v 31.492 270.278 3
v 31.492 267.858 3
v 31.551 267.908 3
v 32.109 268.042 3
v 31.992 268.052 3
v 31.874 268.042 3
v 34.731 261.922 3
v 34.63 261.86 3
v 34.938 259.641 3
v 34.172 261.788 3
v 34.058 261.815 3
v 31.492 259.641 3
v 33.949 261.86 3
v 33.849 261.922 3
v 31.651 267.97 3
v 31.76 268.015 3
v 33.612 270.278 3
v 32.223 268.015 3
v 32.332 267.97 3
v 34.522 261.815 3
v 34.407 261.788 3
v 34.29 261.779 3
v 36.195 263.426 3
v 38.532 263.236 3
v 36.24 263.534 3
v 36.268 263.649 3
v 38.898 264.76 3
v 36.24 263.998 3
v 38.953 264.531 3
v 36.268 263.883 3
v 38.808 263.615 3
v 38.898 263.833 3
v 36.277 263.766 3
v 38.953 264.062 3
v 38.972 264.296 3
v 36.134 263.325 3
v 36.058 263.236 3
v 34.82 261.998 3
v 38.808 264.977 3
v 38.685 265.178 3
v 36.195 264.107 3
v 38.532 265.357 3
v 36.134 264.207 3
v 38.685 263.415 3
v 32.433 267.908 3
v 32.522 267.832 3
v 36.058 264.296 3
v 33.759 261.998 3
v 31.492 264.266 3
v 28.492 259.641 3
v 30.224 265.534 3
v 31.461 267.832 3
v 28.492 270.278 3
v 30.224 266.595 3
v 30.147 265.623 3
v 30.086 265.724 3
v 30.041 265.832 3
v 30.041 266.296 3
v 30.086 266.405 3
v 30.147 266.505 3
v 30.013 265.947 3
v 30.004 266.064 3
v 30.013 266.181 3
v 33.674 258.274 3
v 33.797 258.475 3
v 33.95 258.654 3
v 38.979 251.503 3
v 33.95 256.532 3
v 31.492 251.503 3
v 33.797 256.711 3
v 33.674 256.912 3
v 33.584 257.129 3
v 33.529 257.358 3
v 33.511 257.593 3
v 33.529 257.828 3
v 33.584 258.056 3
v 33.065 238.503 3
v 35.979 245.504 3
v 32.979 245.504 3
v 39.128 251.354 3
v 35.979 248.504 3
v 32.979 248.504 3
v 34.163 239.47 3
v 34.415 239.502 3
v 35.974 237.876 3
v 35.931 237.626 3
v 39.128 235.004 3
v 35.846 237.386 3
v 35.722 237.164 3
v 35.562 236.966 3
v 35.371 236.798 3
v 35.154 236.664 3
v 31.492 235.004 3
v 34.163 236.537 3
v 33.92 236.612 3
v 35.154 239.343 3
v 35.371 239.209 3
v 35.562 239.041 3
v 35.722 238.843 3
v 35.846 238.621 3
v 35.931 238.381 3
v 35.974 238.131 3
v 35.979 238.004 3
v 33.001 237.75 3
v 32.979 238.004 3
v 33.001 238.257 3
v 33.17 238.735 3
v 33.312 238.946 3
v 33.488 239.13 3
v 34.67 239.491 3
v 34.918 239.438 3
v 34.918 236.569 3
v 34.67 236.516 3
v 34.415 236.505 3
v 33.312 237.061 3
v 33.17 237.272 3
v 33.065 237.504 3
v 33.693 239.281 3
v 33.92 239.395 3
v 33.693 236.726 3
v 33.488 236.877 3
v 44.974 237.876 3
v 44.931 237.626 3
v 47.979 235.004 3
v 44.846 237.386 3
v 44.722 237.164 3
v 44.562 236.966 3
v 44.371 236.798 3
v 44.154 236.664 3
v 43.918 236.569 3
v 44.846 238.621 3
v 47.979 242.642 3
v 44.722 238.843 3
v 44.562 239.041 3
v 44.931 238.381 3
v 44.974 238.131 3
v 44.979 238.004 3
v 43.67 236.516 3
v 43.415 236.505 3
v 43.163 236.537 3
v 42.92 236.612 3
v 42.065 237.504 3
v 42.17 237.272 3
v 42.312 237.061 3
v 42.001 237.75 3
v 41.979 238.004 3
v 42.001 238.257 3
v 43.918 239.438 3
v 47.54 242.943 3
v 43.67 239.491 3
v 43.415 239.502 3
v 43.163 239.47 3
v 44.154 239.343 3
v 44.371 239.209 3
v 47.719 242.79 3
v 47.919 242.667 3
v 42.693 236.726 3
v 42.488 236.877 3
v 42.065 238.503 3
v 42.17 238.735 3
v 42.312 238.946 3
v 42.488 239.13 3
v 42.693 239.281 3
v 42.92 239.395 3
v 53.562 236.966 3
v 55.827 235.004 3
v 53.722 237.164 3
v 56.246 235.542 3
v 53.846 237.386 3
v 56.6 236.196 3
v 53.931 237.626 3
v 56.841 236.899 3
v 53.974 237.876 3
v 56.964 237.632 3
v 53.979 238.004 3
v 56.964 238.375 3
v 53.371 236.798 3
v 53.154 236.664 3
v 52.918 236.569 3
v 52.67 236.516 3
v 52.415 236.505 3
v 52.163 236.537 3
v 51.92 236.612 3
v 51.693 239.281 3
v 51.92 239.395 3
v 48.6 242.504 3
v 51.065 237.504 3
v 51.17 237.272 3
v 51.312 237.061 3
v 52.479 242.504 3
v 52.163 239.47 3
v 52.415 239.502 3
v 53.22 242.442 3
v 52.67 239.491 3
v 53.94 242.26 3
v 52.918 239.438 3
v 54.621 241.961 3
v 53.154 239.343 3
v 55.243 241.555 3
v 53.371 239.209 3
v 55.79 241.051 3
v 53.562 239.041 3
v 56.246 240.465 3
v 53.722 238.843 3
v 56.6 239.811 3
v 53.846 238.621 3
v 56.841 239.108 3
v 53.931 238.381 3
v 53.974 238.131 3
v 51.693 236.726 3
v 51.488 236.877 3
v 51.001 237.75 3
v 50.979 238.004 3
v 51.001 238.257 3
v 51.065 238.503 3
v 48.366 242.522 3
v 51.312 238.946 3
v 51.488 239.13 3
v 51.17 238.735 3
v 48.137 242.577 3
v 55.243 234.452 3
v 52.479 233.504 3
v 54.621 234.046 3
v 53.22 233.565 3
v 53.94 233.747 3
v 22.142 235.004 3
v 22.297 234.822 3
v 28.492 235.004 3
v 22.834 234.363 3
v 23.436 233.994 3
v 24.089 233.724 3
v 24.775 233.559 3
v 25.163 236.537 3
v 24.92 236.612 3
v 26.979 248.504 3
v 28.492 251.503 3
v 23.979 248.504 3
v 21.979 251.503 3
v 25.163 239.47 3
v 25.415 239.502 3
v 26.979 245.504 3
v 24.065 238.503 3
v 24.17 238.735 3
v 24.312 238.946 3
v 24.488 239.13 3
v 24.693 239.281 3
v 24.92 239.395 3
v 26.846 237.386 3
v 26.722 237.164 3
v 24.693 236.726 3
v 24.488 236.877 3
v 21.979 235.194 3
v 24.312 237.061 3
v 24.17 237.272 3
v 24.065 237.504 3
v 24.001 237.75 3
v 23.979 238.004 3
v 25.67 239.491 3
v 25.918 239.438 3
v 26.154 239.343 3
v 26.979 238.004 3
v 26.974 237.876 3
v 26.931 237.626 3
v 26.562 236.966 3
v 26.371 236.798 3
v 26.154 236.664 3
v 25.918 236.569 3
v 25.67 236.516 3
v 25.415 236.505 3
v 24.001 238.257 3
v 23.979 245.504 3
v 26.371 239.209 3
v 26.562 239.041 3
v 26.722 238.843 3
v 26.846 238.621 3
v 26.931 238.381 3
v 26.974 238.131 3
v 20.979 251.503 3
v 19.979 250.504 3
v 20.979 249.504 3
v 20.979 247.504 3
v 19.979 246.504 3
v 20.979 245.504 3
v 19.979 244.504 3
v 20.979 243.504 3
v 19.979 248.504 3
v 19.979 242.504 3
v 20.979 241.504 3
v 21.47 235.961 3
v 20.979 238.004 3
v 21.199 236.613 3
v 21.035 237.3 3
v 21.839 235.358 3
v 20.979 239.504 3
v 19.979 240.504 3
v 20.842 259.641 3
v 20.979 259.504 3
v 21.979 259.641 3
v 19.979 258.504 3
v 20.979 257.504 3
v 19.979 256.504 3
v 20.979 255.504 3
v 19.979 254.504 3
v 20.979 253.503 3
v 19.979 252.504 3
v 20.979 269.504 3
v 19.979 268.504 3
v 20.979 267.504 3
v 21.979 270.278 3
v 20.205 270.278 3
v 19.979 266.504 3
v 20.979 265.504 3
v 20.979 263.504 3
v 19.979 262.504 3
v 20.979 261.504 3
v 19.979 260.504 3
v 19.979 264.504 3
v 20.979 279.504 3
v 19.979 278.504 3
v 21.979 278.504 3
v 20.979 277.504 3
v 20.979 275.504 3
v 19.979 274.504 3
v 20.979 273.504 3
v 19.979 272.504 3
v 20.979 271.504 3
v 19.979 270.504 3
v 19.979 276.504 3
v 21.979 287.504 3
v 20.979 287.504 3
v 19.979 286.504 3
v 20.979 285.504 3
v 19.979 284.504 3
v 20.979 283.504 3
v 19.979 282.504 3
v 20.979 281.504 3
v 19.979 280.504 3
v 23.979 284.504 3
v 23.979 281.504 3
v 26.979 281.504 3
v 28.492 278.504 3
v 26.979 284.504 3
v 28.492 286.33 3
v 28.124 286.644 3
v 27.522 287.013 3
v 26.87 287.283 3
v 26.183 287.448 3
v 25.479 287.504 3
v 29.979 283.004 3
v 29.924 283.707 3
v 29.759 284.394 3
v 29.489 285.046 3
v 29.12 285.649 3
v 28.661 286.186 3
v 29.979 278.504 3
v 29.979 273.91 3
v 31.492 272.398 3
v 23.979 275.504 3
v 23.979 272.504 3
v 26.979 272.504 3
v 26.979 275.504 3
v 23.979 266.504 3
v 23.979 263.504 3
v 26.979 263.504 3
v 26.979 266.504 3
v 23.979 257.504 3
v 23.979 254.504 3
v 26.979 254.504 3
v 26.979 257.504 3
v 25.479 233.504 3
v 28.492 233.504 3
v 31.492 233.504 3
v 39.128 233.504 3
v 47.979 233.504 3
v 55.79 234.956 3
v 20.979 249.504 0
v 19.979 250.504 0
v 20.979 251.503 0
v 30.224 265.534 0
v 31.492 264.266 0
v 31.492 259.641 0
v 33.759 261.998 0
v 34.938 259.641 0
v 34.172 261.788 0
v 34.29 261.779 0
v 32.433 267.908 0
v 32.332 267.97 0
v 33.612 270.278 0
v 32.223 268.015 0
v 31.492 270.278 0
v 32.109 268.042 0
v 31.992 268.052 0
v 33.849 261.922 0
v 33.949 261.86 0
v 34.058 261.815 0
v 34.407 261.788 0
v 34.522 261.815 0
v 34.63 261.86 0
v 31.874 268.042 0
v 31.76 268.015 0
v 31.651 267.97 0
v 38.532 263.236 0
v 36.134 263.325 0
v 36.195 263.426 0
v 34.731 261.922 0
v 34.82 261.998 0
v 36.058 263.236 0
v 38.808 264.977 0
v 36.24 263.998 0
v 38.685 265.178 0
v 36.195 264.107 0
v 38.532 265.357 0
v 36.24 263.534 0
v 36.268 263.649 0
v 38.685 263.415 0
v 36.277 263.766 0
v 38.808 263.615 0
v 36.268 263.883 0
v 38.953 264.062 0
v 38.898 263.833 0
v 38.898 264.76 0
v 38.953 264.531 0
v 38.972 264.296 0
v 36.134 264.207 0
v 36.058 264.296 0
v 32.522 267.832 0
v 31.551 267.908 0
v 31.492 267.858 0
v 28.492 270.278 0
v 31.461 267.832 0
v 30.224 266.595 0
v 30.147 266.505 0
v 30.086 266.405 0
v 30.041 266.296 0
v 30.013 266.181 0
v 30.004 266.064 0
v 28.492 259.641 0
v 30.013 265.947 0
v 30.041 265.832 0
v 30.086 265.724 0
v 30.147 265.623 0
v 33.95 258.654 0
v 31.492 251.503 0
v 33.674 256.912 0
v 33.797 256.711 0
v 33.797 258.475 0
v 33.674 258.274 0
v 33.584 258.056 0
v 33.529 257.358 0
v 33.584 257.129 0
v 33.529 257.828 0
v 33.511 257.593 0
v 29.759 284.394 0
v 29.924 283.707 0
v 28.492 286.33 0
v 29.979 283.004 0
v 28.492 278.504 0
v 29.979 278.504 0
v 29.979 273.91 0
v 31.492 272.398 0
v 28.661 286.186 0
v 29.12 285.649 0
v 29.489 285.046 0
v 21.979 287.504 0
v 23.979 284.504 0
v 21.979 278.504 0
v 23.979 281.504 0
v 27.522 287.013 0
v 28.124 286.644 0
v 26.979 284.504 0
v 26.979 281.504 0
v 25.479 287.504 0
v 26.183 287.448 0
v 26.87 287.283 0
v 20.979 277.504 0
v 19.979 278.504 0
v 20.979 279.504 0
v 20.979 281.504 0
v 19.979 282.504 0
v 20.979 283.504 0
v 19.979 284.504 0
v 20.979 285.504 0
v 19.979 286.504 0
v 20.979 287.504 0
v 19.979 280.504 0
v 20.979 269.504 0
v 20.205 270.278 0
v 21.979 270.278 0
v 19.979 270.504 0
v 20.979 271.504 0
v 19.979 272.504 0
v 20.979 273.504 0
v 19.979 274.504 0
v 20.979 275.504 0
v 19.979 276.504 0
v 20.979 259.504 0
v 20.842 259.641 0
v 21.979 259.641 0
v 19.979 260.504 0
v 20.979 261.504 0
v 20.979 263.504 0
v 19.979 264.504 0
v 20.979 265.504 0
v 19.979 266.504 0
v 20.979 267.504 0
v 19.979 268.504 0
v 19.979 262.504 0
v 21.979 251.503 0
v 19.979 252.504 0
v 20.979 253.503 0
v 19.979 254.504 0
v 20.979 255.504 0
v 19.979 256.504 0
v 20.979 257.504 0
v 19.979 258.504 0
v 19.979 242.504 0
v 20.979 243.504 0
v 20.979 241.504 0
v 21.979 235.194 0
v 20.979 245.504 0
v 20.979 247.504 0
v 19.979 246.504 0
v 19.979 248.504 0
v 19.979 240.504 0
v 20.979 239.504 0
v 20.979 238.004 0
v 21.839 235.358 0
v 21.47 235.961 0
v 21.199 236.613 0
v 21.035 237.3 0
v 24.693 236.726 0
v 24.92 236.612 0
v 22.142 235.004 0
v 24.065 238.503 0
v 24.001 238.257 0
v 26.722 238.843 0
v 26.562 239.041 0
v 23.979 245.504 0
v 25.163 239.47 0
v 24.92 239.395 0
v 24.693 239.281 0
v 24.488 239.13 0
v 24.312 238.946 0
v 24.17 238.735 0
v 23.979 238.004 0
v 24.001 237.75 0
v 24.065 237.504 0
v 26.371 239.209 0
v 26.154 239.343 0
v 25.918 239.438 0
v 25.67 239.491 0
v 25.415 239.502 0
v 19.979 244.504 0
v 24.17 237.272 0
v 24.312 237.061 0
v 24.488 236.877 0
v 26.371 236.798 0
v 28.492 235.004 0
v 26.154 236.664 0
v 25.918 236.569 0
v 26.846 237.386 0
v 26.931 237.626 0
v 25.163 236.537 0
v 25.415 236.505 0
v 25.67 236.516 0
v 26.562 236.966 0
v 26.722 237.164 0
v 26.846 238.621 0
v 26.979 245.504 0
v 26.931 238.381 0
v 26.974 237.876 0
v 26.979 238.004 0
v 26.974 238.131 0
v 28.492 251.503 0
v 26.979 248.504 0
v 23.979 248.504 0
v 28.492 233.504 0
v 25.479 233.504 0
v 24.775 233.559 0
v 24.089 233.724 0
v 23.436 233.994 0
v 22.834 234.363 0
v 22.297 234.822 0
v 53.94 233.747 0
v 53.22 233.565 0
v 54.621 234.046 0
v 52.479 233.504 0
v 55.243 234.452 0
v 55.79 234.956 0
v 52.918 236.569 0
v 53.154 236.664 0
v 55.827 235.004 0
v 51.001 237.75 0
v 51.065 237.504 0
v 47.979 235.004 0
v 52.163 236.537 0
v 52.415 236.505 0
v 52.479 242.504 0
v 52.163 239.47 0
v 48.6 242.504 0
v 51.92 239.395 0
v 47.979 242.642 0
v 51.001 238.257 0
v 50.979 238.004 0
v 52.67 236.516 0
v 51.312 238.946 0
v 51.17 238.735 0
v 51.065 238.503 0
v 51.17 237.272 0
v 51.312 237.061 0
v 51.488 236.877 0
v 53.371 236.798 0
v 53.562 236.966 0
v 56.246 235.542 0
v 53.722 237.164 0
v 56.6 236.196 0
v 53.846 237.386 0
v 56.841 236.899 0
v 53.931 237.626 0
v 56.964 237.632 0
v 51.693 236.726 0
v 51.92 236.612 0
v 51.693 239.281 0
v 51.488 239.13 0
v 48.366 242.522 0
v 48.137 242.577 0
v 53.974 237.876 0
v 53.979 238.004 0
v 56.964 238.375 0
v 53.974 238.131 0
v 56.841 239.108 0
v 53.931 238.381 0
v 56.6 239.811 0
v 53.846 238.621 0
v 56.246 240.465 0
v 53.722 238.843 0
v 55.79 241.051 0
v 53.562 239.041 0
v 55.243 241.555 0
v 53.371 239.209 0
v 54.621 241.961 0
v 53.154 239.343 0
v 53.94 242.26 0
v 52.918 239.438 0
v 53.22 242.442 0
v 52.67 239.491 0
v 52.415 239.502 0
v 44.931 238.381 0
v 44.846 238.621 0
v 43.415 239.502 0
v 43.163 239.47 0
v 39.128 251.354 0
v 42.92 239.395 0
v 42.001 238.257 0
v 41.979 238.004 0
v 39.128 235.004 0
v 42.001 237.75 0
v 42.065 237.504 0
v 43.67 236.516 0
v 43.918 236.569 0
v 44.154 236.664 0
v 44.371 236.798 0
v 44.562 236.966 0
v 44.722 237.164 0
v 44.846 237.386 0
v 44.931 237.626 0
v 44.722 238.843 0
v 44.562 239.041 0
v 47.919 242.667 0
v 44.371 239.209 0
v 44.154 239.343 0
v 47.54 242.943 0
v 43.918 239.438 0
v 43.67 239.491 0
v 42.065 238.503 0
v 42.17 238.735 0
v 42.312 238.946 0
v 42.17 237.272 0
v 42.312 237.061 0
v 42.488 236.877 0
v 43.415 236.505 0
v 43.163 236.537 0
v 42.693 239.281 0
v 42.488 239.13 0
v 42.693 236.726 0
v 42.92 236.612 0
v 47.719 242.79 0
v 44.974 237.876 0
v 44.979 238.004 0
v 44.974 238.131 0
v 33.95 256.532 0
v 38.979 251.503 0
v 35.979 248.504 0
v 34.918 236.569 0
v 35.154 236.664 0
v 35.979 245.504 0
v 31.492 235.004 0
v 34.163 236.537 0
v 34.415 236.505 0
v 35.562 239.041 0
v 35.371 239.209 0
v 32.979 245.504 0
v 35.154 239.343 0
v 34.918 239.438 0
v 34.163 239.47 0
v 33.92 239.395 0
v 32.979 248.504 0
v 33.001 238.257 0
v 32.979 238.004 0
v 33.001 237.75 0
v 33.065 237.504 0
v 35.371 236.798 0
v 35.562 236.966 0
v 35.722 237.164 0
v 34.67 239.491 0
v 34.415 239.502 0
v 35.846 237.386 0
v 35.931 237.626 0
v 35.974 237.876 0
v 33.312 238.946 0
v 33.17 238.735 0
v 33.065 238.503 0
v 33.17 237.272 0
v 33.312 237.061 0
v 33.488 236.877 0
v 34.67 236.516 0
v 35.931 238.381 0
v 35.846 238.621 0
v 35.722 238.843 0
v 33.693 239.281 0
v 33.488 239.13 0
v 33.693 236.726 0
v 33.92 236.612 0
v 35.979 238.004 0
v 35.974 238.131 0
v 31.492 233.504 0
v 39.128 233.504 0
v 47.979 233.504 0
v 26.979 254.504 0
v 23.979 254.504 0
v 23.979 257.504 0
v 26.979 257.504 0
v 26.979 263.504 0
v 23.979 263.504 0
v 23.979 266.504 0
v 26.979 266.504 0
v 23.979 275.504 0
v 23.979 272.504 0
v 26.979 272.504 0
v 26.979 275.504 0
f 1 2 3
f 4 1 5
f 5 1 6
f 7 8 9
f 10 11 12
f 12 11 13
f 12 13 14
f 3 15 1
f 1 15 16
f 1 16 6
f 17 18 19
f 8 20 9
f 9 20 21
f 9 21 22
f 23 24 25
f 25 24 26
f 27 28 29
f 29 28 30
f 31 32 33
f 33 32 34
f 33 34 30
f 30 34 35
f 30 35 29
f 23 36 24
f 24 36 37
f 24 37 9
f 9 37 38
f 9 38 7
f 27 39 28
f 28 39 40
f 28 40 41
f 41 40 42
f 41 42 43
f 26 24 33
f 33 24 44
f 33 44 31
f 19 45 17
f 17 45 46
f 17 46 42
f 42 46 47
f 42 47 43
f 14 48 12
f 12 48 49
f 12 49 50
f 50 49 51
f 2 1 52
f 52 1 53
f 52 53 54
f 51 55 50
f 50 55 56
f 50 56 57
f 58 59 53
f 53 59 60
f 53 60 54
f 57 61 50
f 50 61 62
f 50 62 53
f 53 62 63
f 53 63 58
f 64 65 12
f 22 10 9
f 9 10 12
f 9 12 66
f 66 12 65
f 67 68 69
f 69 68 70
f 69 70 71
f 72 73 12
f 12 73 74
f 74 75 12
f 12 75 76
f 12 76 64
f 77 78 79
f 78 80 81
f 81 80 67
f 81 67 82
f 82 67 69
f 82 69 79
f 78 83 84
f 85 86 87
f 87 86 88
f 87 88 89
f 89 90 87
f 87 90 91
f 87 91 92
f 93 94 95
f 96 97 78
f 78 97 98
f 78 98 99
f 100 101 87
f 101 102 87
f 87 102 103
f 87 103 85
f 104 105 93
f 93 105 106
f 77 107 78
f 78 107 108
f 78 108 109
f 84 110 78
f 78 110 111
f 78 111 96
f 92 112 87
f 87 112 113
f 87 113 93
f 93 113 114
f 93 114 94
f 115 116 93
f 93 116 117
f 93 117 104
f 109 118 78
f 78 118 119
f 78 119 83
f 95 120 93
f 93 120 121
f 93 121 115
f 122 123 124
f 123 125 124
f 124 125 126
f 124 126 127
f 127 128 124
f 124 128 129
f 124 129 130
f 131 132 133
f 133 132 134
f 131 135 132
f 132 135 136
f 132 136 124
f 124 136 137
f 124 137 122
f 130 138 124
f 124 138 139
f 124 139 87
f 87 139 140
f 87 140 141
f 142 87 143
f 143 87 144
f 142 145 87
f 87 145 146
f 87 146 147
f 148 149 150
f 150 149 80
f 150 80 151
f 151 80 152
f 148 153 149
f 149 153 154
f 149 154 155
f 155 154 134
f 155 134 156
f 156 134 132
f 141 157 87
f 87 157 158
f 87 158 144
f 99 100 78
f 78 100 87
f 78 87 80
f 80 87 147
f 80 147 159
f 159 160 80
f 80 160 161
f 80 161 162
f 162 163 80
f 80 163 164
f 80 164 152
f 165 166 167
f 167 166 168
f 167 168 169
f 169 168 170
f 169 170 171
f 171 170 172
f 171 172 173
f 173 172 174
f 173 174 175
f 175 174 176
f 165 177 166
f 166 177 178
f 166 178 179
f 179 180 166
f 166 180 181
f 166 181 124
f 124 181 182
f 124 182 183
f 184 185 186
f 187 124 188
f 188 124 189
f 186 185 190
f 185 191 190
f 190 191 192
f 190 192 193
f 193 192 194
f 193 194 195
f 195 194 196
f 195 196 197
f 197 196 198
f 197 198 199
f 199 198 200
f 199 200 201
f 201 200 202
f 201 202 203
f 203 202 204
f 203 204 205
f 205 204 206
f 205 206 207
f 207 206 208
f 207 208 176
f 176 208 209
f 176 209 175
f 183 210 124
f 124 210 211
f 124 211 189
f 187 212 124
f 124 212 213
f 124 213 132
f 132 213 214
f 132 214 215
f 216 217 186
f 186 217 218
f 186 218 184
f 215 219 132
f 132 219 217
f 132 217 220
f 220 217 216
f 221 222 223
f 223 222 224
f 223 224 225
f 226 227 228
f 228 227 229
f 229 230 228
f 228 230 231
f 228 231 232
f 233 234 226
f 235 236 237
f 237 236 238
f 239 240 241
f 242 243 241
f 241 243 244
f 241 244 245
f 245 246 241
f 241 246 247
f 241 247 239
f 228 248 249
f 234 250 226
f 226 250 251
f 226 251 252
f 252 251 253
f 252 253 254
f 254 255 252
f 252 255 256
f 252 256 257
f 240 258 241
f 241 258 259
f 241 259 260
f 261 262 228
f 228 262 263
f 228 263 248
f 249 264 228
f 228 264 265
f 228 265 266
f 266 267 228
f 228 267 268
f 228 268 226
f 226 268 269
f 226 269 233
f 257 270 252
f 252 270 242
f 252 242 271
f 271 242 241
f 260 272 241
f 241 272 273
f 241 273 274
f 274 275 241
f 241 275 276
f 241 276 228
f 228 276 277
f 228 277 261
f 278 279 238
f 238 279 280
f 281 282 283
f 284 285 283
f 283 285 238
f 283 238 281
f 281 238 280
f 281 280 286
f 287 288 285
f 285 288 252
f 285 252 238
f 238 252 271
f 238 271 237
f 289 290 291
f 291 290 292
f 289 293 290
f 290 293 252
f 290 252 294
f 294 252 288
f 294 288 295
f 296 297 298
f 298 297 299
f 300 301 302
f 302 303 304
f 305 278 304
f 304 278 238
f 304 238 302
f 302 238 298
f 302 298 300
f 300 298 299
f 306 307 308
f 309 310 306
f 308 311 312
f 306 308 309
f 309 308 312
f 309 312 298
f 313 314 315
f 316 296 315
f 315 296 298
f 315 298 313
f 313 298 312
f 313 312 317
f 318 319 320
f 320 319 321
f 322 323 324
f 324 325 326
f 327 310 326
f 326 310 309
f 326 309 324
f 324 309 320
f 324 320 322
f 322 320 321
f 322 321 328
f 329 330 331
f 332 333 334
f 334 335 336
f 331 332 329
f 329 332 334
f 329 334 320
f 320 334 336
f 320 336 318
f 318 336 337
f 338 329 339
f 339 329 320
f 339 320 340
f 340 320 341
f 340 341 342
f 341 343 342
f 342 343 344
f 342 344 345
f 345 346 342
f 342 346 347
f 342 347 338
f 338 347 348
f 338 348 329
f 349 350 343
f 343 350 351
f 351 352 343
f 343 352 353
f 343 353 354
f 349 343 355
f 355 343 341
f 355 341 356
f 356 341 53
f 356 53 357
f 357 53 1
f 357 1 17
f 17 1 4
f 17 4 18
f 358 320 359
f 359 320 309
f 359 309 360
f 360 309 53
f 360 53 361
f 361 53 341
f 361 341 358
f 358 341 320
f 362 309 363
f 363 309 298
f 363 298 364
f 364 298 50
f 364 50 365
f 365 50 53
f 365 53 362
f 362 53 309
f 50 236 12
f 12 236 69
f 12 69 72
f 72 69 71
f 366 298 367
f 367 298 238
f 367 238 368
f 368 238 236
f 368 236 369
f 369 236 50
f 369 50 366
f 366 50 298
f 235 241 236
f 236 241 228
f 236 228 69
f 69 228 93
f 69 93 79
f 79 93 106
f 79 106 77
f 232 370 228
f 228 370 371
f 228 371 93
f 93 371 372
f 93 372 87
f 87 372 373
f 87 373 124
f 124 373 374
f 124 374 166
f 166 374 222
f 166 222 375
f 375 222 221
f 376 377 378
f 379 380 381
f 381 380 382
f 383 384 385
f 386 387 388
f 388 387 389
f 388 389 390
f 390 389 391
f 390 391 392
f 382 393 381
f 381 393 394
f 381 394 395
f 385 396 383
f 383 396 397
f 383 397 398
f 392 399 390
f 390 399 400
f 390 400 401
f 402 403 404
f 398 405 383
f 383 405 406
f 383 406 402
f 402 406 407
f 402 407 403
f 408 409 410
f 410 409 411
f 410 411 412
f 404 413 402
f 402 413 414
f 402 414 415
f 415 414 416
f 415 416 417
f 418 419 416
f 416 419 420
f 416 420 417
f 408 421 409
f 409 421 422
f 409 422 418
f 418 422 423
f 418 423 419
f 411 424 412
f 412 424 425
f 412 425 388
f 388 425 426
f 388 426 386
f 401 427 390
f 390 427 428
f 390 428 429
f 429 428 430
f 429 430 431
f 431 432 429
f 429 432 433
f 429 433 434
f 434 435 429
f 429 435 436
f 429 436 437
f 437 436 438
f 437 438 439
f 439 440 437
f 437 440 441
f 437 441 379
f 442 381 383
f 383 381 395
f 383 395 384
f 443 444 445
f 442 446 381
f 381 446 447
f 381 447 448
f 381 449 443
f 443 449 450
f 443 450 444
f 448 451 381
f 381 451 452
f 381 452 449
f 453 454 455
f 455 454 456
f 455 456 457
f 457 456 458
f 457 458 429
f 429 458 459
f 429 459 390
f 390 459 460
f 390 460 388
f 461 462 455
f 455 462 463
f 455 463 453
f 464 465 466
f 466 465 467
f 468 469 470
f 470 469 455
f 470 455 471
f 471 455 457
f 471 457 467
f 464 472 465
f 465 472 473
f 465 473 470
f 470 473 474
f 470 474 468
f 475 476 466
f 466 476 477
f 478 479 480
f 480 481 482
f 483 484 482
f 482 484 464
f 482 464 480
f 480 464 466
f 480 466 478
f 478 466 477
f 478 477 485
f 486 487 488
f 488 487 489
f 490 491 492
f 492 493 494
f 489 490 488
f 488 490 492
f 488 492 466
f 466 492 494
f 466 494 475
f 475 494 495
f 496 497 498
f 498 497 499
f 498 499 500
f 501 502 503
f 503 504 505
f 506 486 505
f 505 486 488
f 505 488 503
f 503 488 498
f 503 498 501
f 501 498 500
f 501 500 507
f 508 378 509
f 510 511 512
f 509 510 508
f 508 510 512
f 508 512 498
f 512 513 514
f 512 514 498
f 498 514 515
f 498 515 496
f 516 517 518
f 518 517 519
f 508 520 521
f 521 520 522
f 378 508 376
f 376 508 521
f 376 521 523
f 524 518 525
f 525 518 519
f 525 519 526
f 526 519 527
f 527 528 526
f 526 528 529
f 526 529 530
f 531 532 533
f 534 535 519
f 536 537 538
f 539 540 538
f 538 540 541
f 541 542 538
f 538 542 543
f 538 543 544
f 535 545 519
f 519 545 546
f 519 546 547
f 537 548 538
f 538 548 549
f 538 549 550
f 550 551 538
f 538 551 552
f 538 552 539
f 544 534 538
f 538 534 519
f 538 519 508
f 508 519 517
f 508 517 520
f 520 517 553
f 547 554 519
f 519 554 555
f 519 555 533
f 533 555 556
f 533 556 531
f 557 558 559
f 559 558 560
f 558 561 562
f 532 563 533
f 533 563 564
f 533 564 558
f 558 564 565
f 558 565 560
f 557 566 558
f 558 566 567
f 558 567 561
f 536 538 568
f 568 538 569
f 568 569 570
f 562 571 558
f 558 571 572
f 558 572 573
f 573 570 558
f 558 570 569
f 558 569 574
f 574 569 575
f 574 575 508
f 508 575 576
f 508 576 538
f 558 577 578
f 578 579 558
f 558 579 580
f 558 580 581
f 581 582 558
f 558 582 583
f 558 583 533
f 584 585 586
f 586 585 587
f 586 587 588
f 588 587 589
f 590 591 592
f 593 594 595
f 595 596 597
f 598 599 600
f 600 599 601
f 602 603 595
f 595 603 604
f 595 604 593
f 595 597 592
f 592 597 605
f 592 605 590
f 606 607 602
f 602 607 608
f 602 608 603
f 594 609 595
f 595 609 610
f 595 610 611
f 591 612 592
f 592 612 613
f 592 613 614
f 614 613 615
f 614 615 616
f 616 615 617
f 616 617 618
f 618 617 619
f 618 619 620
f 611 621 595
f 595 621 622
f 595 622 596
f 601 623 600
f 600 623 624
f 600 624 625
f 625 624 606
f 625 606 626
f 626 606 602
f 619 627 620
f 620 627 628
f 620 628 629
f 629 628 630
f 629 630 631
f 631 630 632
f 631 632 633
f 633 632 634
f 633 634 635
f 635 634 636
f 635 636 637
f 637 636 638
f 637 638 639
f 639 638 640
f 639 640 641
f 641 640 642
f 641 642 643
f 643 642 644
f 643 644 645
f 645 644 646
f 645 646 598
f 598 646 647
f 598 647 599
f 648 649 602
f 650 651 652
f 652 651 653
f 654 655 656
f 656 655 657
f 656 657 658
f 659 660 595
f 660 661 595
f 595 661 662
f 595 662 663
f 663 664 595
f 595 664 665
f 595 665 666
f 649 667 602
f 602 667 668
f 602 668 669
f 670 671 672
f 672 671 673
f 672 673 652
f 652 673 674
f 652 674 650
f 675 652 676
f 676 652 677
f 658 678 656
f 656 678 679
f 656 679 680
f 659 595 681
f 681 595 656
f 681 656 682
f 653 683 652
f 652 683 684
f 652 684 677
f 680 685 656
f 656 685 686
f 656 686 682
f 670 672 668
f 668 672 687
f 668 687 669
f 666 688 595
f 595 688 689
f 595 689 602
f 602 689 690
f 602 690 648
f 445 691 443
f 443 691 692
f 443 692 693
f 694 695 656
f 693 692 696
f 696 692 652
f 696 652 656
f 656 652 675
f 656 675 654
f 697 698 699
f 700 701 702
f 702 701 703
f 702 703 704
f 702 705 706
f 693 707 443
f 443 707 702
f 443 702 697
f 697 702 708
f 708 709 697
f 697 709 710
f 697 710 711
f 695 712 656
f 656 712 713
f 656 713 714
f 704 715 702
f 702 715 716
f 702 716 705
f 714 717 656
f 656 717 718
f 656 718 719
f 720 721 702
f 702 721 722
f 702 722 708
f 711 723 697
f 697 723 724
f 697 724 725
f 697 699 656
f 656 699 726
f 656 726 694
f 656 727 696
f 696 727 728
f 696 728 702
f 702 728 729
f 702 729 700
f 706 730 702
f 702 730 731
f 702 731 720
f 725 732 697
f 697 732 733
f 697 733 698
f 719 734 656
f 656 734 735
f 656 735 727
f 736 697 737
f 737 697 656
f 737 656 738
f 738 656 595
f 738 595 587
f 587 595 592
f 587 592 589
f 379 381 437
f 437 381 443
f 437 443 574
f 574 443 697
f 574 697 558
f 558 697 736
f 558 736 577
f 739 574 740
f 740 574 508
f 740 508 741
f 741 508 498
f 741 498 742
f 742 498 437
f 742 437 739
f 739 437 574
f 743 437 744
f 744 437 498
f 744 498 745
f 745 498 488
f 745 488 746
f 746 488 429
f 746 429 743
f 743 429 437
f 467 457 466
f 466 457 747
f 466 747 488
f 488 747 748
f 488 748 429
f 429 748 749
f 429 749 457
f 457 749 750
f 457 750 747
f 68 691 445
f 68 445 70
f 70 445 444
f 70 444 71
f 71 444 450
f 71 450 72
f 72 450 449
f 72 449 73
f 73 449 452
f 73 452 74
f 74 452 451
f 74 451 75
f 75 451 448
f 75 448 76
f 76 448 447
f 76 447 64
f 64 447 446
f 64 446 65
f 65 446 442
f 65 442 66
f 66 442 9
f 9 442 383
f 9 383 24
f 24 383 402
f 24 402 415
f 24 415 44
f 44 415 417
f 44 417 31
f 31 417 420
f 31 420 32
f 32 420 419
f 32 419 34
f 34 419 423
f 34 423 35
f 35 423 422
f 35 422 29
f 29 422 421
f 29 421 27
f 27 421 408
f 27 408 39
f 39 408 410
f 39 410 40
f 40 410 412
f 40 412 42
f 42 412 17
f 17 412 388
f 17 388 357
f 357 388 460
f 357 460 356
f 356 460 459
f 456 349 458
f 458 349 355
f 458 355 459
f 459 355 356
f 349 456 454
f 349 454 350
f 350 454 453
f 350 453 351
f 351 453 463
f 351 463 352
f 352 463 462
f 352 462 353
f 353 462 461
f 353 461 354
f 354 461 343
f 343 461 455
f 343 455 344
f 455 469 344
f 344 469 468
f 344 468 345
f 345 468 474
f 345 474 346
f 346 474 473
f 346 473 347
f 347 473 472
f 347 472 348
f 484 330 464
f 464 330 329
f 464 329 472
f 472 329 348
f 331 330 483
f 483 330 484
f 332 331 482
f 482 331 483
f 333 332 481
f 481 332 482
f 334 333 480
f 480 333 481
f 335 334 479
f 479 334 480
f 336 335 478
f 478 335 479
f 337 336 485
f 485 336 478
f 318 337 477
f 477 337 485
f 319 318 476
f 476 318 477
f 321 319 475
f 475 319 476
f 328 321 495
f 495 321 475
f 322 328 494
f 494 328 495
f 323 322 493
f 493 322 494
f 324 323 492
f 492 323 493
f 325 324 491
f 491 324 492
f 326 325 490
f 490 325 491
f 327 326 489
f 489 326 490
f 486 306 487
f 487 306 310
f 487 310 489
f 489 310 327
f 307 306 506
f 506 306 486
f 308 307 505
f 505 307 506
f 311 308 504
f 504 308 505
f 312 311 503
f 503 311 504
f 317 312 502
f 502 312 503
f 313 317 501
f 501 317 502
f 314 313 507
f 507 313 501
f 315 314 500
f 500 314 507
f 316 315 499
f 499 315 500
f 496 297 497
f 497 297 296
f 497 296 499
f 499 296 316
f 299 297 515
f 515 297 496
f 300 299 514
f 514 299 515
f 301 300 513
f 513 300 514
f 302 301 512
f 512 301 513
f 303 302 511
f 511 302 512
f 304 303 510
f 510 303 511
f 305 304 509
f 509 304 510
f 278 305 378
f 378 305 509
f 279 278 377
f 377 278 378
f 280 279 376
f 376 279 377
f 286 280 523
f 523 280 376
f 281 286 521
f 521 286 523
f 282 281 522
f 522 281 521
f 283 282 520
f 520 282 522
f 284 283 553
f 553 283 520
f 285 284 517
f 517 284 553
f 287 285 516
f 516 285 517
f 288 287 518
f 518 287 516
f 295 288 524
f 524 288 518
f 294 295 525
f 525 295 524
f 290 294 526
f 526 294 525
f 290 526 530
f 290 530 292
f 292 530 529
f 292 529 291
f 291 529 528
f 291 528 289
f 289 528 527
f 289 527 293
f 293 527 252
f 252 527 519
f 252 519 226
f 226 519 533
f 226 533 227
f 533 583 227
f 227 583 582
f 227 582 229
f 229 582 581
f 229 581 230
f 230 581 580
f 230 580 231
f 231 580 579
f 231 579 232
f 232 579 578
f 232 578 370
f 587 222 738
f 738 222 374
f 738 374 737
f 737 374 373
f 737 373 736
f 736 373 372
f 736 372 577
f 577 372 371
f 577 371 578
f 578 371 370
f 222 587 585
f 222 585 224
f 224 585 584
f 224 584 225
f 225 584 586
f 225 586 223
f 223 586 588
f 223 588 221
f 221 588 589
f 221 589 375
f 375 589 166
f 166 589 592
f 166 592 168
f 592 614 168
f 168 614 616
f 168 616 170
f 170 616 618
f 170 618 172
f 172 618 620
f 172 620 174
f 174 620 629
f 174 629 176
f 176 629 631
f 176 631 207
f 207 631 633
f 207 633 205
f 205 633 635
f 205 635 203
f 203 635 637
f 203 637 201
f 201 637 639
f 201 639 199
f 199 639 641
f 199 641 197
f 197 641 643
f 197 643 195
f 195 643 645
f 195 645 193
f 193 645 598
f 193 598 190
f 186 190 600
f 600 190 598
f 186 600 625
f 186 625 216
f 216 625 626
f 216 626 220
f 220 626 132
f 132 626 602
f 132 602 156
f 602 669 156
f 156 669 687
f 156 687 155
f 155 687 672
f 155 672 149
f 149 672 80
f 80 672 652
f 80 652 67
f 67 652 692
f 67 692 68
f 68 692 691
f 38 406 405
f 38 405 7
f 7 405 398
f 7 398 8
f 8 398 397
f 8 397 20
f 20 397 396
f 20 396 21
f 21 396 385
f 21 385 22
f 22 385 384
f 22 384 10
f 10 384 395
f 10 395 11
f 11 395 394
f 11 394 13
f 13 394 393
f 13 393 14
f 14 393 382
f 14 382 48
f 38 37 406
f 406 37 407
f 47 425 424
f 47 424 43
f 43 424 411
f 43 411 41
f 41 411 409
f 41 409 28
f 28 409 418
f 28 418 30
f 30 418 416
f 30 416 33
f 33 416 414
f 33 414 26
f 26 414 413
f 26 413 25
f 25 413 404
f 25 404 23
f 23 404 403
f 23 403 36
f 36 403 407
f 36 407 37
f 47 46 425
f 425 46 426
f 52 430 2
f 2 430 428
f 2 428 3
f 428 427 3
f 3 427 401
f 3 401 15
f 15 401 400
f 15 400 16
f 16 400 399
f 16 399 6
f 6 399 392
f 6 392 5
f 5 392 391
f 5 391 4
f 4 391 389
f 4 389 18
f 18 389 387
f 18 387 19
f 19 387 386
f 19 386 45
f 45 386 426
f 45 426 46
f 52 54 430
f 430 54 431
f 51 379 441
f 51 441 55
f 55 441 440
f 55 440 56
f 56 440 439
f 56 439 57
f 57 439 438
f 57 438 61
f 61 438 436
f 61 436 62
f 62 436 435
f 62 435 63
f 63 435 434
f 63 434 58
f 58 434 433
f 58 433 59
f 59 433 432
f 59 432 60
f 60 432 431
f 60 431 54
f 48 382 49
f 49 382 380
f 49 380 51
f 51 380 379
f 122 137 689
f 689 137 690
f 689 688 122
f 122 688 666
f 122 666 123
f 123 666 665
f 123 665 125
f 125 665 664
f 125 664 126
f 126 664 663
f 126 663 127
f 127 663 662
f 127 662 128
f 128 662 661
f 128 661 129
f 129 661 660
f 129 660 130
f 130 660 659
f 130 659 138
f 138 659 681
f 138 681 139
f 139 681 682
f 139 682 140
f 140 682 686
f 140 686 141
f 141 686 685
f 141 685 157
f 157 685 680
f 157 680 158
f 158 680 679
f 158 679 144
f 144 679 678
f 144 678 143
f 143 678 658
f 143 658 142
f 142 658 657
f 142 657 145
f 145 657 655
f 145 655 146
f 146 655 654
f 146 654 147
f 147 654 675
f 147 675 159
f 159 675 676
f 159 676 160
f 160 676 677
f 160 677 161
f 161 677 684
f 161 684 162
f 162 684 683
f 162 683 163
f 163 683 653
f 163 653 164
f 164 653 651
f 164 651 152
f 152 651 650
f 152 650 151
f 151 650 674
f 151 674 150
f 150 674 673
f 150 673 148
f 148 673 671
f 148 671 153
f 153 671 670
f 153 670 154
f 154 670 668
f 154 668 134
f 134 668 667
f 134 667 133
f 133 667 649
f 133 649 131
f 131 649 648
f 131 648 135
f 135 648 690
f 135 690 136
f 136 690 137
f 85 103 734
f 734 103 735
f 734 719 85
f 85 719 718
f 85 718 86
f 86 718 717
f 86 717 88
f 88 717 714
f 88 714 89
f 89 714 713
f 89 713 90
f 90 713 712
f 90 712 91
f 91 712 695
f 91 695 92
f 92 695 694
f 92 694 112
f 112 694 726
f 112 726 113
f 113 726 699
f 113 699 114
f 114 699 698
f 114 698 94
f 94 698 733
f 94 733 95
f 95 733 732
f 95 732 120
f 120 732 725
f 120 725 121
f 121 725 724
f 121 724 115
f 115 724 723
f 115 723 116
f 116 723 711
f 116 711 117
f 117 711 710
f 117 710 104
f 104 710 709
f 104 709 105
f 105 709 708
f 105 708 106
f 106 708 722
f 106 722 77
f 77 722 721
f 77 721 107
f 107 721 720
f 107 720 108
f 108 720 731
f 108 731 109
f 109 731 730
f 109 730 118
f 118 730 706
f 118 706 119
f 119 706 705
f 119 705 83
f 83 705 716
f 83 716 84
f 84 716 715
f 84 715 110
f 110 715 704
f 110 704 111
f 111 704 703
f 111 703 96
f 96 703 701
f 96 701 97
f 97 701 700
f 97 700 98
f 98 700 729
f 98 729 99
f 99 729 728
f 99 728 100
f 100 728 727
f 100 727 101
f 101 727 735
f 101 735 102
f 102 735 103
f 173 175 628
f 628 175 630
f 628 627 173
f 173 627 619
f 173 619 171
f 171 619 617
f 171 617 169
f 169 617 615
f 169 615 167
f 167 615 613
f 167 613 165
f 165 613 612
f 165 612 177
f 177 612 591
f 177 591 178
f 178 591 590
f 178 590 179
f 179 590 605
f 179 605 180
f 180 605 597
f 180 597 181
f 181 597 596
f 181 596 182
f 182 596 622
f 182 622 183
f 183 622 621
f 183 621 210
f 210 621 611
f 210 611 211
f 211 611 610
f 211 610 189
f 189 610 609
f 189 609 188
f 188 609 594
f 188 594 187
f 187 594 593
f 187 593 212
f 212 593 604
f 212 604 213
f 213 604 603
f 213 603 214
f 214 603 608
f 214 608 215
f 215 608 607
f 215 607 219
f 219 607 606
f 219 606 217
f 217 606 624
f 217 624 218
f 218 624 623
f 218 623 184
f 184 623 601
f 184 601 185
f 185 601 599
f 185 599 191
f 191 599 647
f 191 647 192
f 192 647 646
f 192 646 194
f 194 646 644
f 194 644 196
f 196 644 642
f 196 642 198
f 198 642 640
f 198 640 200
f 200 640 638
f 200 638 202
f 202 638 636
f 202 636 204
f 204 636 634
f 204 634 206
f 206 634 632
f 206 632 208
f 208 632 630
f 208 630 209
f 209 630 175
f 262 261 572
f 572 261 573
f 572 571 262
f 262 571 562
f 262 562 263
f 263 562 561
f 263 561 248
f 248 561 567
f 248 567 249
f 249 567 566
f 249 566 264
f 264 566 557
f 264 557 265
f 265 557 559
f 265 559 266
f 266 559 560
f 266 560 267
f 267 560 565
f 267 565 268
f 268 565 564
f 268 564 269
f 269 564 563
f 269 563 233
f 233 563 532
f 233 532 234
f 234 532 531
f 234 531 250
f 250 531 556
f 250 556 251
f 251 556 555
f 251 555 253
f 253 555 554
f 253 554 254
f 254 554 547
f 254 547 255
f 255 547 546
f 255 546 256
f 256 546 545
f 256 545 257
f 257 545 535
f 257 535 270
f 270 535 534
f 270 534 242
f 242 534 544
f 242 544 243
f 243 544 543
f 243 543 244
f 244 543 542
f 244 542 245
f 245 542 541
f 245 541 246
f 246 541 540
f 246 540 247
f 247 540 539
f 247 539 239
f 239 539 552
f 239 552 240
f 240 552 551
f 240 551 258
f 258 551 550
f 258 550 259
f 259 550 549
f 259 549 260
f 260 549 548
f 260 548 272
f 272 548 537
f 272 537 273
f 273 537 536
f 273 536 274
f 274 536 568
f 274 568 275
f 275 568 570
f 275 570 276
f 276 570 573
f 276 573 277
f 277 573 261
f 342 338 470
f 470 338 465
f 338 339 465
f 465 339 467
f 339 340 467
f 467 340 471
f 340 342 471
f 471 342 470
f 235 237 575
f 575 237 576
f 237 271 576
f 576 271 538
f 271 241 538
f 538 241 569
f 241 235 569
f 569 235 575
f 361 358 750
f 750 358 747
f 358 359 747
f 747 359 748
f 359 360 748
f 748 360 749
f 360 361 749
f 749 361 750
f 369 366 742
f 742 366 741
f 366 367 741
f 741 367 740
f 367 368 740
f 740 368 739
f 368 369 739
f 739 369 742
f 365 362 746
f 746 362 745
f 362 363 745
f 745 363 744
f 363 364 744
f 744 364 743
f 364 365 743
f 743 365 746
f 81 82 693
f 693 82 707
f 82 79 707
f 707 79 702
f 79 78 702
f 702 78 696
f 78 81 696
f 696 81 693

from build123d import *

# Parameters (mm, degrees)
MODEL_R                 = 1.5
MODEL_W                 = 3
MODEL_H                 = 3
SALIENTE_EXTRUIR1_DEPTH = 3


with BuildPart() as part:
    # Model → Saliente-Extruir1 (new body)
    with BuildSketch(Plane.XY):
        with BuildLine():
            Line((20.979107628, 285.503511394), (19.979107628, 286.503511394))
            Line((19.979107628, 286.503511394), (20.979107628, 287.503511394))
            Line((20.979107628, 287.503511394), (25.479107628, 287.503511394))
            ThreePointArc((25.479107628, 287.503511394), (28.661088143, 286.185491909), (29.979107628, 283.003511394))
            Line((29.979107628, 283.003511394), (29.979107628, 273.910365643))
            Line((29.979107628, 273.910365643), (38.532408487, 265.357064784))
            ThreePointArc((38.532408487, 265.357064784), (38.971748315, 264.296404613), (38.532408487, 263.235744441))
            Line((38.532408487, 263.235744441), (33.950301706, 258.65363766))
            ThreePointArc((33.950301706, 258.65363766), (33.510961878, 257.592977488), (33.950301706, 256.532317316))
            Line((33.950301706, 256.532317316), (47.5397678, 242.942851222))
            ThreePointArc((47.5397678, 242.942851222), (48.026402823, 242.617692095), (48.600427972, 242.503511394))
            Line((48.600427972, 242.503511394), (52.479107628, 242.503511394))
            ThreePointArc((52.479107628, 242.503511394), (56.979107628, 238.003511394), (52.479107628, 233.503511394))
            Line((52.479107628, 233.503511394), (25.479107628, 233.503511394))
            ThreePointArc((25.479107628, 233.503511394), (22.297127113, 234.821530879), (20.979107628, 238.003511394))
            Line((20.979107628, 238.003511394), (20.979107628, 239.503511394))
            Line((20.979107628, 239.503511394), (19.979107628, 240.503511394))
            Line((19.979107628, 240.503511394), (20.979107628, 241.503511394))
            Line((20.979107628, 241.503511394), (19.979107628, 242.503511394))
            Line((19.979107628, 242.503511394), (20.979107628, 243.503511394))
            Line((20.979107628, 243.503511394), (19.979107628, 244.503511394))
            Line((19.979107628, 244.503511394), (20.979107628, 245.503511394))
            Line((20.979107628, 245.503511394), (19.979107628, 246.503511394))
            Line((19.979107628, 246.503511394), (20.979107628, 247.503511394))
            Line((20.979107628, 247.503511394), (19.979107628, 248.503511394))
            Line((19.979107628, 248.503511394), (20.979107628, 249.503511394))
            Line((20.979107628, 249.503511394), (19.979107628, 250.503511394))
            Line((19.979107628, 250.503511394), (20.979107628, 251.503511394))
            Line((20.979107628, 251.503511394), (19.979107628, 252.503511394))
            Line((19.979107628, 252.503511394), (20.979107628, 253.503511394))
            Line((20.979107628, 253.503511394), (19.979107628, 254.503511394))
            Line((19.979107628, 254.503511394), (20.979107628, 255.503511394))
            Line((20.979107628, 255.503511394), (19.979107628, 256.503511394))
            Line((19.979107628, 256.503511394), (20.979107628, 257.503511394))
            Line((20.979107628, 257.503511394), (19.979107628, 258.503511394))
            Line((19.979107628, 258.503511394), (20.979107628, 259.503511394))
            Line((20.979107628, 259.503511394), (19.979107628, 260.503511394))
            Line((19.979107628, 260.503511394), (20.979107628, 261.503511394))
            Line((20.979107628, 261.503511394), (19.979107628, 262.503511394))
            Line((19.979107628, 262.503511394), (20.979107628, 263.503511394))
            Line((20.979107628, 263.503511394), (19.979107628, 264.503511394))
            Line((19.979107628, 264.503511394), (20.979107628, 265.503511394))
            Line((20.979107628, 265.503511394), (19.979107628, 266.503511394))
            Line((19.979107628, 266.503511394), (20.979107628, 267.503511394))
            Line((20.979107628, 267.503511394), (19.979107628, 268.503511394))
            Line((19.979107628, 268.503511394), (20.979107628, 269.503511394))
            Line((20.979107628, 269.503511394), (19.979107628, 270.503511394))
            Line((19.979107628, 270.503511394), (20.979107628, 271.503511394))
            Line((20.979107628, 271.503511394), (19.979107628, 272.503511394))
            Line((19.979107628, 272.503511394), (20.979107628, 273.503511394))
            Line((20.979107628, 273.503511394), (19.979107628, 274.503511394))
            Line((19.979107628, 274.503511394), (20.979107628, 275.503511394))
            Line((20.979107628, 275.503511394), (19.979107628, 276.503511394))
            Line((19.979107628, 276.503511394), (20.979107628, 277.503511394))
            Line((20.979107628, 277.503511394), (19.979107628, 278.503511394))
            Line((19.979107628, 278.503511394), (20.979107628, 279.503511394))
            Line((20.979107628, 279.503511394), (19.979107628, 280.503511394))
            Line((19.979107628, 280.503511394), (20.979107628, 281.503511394))
            Line((20.979107628, 281.503511394), (19.979107628, 282.503511394))
            Line((19.979107628, 282.503511394), (20.979107628, 283.503511394))
            Line((20.979107628, 283.503511394), (19.979107628, 284.503511394))
            Line((19.979107628, 284.503511394), (20.979107628, 285.503511394))
        make_face()
        with Locations((43.479107628, 238.003511394)):
            Circle(MODEL_R, mode=Mode.SUBTRACT)
        with Locations((34.479107628, 238.003511394)):
            Circle(MODEL_R, mode=Mode.SUBTRACT)
        with Locations((52.479107628, 238.003511394)):
            Circle(MODEL_R, mode=Mode.SUBTRACT)
        with Locations((25.479107628, 238.003511394)):
            Circle(MODEL_R, mode=Mode.SUBTRACT)
        with Locations((25.479107628, 283.003511394)):
            Rectangle(MODEL_W, MODEL_H, mode=Mode.SUBTRACT)
        with Locations((25.479107628, 247.003511394)):
            Rectangle(MODEL_W, MODEL_H, mode=Mode.SUBTRACT)
        with Locations((25.479107628, 274.003511394)):
            Rectangle(MODEL_W, MODEL_H, mode=Mode.SUBTRACT)
        with Locations((25.479107628, 256.003511394)):
            Rectangle(MODEL_W, MODEL_H, mode=Mode.SUBTRACT)
        with Locations((25.479107628, 265.003511394)):
            Rectangle(MODEL_W, MODEL_H, mode=Mode.SUBTRACT)
        with Locations((34.479107628, 247.003511394)):
            Rectangle(MODEL_W, MODEL_H, mode=Mode.SUBTRACT)
        with BuildLine():
            Line((36.057534753, 263.235744441), (34.820097886, 261.998307574))
            ThreePointArc((34.820097886, 261.998307574), (34.2897678, 261.77863766), (33.759437714, 261.998307574))
            Line((33.759437714, 261.998307574), (30.223903808, 265.53384148))
            ThreePointArc((30.223903808, 265.53384148), (30.004233894, 266.064171566), (30.223903808, 266.594501652))
            Line((30.223903808, 266.594501652), (31.461340675, 267.831938519))
            ThreePointArc((31.461340675, 267.831938519), (31.991670761, 268.051608433), (32.522000847, 267.831938519))
            Line((32.522000847, 267.831938519), (36.057534753, 264.296404613))
            ThreePointArc((36.057534753, 264.296404613), (36.277204667, 263.766074527), (36.057534753, 263.235744441))
        make_face(mode=Mode.SUBTRACT)
    extrude(amount=SALIENTE_EXTRUIR1_DEPTH)


solid = part.part
